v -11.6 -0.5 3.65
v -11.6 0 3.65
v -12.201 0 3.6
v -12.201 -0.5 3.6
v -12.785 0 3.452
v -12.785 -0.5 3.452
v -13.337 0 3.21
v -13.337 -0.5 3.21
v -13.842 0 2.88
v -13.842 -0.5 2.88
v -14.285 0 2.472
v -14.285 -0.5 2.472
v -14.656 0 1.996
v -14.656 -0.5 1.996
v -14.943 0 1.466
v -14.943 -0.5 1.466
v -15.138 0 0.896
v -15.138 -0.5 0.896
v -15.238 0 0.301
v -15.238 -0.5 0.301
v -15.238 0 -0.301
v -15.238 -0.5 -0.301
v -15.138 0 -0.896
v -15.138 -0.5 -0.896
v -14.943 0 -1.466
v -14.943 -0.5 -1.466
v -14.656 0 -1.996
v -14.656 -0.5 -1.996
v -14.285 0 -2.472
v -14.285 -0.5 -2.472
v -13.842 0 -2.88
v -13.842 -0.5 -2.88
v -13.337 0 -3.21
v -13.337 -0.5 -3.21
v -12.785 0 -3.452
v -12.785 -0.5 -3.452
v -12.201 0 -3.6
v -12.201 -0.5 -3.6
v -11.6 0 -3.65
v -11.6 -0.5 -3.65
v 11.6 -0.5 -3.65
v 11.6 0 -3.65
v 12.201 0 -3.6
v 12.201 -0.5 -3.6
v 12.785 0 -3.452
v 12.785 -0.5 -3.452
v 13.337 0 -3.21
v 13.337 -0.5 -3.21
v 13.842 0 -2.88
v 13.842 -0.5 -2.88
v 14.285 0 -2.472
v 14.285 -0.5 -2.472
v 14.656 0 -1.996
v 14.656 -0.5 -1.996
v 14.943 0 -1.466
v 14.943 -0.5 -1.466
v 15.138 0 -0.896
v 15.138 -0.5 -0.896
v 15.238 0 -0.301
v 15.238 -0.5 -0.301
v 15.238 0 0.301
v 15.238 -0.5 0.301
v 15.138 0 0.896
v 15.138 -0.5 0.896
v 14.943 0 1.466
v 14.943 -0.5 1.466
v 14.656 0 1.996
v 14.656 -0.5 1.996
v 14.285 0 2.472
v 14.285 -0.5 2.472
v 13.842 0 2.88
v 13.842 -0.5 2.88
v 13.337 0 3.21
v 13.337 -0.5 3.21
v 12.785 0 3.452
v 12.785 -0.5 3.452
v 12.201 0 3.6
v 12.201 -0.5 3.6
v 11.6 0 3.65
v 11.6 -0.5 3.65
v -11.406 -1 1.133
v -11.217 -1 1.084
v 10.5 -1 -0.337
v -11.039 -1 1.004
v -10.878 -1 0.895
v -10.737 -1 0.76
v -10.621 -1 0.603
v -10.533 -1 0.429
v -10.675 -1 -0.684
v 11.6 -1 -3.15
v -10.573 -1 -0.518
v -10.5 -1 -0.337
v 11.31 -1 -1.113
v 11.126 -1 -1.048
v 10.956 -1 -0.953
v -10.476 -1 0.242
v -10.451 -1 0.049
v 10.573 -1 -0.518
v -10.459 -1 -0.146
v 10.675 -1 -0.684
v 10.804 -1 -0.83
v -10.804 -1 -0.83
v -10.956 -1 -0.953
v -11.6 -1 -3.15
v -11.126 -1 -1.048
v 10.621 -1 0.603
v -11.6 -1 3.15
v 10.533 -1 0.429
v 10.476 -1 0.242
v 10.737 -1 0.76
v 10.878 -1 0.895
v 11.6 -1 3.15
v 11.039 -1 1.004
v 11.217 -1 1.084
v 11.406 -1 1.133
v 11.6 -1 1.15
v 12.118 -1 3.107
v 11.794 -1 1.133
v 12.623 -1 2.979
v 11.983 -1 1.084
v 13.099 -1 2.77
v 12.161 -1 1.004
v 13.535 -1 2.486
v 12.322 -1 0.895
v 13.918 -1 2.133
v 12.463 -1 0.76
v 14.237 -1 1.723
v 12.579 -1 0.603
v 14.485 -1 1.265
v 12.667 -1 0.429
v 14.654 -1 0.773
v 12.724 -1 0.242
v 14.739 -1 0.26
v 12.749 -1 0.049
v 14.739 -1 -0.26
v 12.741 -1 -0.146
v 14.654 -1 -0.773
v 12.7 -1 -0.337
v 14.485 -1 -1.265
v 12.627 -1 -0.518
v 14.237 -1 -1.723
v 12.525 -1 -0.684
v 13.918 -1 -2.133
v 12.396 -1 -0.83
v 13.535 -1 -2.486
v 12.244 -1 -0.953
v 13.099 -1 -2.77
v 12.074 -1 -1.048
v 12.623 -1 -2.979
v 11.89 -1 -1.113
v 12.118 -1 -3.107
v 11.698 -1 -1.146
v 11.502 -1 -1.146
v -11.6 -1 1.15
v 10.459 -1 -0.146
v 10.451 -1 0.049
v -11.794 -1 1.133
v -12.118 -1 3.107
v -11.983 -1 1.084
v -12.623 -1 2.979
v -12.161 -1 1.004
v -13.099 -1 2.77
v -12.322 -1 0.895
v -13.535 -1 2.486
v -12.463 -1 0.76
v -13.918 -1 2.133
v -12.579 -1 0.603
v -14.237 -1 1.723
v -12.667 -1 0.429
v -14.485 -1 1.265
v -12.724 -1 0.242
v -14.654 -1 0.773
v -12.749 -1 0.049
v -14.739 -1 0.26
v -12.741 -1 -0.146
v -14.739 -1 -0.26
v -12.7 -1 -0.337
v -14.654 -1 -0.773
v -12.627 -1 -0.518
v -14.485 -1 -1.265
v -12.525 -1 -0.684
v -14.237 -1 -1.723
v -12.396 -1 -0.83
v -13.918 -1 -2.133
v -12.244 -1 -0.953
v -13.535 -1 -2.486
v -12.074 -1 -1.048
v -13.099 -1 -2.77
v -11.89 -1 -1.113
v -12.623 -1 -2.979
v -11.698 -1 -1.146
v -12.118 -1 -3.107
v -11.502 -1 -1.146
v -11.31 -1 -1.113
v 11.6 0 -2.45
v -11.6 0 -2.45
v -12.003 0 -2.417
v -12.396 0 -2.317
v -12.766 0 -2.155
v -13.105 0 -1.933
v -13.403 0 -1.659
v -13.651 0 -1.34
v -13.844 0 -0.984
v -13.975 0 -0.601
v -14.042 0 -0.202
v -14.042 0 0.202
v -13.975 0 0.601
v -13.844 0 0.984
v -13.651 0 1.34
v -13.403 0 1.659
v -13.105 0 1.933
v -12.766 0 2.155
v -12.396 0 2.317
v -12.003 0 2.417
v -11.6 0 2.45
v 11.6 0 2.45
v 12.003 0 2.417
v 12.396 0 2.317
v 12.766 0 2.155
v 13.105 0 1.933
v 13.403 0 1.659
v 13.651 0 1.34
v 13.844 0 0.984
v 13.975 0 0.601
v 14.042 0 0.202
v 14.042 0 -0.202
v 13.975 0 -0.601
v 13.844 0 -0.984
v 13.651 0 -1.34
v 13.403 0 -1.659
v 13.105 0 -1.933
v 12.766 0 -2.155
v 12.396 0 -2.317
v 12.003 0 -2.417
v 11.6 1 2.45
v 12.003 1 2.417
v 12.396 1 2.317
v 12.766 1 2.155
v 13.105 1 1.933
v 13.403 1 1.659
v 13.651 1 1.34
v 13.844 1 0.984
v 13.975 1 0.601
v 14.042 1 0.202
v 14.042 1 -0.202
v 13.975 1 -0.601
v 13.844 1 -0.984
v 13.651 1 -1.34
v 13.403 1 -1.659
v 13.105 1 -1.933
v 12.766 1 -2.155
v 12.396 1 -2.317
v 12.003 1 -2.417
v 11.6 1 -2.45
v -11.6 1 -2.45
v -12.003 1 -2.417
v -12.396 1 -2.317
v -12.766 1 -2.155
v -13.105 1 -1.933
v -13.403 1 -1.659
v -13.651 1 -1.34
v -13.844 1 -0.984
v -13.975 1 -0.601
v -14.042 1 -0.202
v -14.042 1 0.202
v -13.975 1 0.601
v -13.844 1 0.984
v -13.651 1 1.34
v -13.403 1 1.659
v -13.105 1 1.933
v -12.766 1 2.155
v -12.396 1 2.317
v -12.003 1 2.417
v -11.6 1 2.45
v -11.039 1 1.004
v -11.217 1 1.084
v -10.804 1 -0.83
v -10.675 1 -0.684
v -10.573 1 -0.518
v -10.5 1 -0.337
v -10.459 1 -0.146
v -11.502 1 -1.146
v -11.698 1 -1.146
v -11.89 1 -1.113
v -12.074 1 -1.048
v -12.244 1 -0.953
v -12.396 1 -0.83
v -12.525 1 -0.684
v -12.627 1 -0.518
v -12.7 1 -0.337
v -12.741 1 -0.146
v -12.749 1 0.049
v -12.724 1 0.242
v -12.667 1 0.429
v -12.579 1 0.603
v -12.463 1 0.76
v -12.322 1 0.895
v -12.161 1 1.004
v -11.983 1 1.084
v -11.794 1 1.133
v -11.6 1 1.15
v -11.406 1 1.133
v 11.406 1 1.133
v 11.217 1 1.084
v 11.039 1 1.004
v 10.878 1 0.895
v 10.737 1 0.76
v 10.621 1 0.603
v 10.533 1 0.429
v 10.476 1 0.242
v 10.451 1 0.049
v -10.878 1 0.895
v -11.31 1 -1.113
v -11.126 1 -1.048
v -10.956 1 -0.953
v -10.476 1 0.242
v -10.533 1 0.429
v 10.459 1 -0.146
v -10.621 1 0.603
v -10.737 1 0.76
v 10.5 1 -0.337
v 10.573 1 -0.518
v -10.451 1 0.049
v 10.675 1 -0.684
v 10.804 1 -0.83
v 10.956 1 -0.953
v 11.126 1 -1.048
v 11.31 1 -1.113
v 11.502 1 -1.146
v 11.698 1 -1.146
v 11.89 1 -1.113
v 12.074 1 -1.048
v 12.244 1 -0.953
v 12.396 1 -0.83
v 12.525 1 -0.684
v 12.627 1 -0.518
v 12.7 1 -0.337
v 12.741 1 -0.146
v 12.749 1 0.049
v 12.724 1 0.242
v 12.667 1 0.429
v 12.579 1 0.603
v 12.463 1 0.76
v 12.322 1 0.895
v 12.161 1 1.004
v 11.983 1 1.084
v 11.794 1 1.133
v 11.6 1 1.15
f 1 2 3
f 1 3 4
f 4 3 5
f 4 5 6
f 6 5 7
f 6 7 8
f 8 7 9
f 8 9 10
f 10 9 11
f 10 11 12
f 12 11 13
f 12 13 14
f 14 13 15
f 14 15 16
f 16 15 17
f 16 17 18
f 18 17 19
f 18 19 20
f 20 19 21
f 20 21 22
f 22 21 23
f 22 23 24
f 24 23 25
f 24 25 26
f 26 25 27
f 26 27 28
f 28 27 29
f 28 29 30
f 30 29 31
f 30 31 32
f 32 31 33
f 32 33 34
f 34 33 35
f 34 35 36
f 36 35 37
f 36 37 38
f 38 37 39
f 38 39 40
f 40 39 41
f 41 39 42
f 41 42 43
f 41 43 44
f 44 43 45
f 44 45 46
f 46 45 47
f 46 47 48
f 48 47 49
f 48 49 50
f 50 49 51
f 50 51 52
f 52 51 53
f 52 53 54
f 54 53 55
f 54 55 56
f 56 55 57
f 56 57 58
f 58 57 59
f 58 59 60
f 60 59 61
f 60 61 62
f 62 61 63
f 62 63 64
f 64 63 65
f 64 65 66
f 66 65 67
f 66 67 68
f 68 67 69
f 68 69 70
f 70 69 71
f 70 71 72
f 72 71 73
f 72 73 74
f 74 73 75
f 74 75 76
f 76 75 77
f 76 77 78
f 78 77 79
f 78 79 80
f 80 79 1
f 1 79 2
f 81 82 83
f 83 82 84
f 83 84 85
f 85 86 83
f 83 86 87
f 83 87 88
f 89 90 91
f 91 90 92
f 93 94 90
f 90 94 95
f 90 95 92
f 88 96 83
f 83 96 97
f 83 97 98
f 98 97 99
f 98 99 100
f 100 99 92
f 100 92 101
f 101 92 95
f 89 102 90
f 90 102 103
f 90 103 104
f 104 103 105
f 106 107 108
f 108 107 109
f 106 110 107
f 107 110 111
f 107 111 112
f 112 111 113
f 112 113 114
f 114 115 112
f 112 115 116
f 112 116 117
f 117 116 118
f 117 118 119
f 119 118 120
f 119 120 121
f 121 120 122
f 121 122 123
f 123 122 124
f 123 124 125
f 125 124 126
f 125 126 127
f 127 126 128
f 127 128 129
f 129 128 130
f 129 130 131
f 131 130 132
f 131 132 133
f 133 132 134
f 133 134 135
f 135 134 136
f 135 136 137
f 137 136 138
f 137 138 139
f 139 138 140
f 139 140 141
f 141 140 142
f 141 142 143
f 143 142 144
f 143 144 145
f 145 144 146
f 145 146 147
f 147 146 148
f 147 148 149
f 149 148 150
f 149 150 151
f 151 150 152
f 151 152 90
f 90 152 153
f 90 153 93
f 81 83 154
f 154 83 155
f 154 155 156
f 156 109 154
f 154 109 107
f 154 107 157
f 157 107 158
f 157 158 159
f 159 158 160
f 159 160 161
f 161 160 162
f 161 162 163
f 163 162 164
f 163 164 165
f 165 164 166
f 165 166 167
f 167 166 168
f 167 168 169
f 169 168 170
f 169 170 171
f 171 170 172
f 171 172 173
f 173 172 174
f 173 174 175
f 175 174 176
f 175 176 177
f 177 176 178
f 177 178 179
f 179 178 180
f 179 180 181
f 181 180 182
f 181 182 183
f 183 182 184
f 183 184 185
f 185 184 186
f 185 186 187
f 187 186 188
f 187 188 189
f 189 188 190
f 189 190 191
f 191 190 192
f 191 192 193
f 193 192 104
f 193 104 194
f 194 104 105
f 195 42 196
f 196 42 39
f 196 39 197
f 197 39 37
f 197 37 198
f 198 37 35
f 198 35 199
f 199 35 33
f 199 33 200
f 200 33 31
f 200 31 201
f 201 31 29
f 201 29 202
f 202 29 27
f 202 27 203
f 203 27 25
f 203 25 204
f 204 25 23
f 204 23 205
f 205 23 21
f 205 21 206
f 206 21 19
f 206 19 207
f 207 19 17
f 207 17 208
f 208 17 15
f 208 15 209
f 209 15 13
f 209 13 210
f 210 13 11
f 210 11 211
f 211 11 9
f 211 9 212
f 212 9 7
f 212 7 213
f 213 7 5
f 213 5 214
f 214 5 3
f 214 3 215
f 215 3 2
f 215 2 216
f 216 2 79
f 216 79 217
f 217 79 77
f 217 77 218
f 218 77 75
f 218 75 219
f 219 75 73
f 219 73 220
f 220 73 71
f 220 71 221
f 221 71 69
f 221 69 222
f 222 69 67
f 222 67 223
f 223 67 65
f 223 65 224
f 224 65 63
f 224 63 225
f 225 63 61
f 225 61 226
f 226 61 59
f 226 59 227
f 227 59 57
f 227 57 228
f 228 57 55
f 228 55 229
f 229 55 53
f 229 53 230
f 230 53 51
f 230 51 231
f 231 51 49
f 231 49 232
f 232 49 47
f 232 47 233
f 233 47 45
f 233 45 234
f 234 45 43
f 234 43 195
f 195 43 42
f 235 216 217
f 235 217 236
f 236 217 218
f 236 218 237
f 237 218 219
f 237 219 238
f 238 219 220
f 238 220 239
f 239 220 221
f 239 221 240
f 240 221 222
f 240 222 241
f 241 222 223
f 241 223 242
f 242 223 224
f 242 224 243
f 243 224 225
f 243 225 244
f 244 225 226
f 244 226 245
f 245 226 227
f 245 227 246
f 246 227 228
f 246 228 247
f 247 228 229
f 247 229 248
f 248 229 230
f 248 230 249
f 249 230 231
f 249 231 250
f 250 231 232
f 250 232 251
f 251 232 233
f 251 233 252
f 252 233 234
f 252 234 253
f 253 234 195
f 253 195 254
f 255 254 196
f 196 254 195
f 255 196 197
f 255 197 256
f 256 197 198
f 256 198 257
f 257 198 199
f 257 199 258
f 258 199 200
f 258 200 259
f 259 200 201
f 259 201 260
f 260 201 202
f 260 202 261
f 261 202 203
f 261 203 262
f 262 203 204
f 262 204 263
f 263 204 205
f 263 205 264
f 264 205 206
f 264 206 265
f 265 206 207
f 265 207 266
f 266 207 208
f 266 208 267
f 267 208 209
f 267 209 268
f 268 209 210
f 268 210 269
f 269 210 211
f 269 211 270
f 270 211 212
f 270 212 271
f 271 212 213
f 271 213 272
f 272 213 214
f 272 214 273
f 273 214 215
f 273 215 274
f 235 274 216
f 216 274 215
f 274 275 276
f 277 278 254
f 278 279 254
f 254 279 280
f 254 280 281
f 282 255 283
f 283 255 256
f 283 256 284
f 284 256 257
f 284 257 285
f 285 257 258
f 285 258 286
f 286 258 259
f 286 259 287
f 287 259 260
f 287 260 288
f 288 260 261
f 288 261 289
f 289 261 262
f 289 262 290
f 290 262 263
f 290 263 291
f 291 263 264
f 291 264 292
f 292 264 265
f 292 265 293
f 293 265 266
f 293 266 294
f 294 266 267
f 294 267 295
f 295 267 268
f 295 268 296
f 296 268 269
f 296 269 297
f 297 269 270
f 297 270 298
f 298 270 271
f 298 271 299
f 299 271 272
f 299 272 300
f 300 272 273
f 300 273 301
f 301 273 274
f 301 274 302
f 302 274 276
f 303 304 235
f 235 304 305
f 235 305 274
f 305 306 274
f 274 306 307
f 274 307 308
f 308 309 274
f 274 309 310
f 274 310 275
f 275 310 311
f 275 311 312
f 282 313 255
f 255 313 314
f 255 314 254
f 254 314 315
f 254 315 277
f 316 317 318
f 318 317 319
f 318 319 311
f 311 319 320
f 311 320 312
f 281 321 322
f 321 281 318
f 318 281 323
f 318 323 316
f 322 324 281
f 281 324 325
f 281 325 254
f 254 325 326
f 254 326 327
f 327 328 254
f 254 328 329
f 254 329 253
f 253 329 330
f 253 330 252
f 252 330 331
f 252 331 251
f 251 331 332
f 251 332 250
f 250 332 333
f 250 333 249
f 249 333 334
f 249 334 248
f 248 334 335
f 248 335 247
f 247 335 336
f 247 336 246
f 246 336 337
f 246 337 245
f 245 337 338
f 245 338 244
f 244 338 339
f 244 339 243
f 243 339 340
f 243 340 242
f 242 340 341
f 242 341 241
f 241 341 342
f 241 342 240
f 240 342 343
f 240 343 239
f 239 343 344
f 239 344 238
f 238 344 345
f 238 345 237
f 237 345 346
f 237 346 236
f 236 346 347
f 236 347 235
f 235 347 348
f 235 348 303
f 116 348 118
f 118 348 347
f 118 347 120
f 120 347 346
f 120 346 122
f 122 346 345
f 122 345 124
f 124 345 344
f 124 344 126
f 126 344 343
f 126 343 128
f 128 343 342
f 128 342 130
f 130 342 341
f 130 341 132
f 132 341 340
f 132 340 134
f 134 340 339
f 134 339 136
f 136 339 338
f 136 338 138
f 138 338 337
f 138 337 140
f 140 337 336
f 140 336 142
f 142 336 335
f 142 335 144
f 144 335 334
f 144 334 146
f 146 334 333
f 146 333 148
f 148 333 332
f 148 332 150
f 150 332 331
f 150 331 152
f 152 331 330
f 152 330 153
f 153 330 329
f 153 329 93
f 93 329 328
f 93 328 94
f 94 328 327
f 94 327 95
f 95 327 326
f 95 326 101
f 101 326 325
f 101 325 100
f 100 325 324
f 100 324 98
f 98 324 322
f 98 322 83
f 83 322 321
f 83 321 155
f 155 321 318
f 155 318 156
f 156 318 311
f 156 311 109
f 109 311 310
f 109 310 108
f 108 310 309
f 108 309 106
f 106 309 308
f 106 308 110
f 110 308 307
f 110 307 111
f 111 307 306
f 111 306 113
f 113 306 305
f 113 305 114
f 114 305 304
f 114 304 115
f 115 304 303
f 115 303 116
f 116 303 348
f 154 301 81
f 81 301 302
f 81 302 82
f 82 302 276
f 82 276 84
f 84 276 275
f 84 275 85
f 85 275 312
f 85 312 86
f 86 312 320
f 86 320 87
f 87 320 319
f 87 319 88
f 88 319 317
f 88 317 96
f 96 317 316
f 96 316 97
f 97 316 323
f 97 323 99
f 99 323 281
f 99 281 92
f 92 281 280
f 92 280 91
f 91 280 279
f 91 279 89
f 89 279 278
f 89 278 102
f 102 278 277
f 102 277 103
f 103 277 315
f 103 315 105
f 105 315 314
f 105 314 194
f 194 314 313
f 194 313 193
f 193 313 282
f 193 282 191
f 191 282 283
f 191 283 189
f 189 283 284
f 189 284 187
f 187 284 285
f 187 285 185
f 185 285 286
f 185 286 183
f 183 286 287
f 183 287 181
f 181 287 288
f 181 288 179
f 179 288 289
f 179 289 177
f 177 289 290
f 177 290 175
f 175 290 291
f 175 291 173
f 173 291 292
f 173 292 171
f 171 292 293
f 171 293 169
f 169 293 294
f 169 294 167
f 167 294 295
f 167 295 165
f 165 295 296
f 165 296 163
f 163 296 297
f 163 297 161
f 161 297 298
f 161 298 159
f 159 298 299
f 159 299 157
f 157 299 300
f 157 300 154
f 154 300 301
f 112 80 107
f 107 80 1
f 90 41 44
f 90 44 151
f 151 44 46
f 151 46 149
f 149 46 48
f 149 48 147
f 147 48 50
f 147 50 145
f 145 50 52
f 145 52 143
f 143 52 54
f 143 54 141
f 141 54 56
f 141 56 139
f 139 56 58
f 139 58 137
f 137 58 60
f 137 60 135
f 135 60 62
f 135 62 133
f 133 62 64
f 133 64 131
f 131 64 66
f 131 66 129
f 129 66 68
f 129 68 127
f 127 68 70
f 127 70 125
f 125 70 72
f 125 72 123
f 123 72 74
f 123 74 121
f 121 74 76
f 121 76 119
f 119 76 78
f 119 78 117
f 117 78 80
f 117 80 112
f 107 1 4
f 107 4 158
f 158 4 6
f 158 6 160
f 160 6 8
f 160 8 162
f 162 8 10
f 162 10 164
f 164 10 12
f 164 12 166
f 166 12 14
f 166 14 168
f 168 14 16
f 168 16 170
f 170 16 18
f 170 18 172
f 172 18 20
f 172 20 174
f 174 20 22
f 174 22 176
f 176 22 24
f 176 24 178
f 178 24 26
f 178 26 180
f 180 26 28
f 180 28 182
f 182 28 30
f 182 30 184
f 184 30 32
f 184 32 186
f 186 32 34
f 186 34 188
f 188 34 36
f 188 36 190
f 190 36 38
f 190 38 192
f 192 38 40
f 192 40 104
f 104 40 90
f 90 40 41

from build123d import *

# Parameters (mm, degrees)
BOSS_EXTRUDE1_DEPTH = 1
BOSS_EXTRUDE2_DEPTH = 1
SKETCH4_R           = 1.15
CUT_EXTRUDE1_DEPTH  = 16.807751263
CHAMFER1_SIZE       = 0.5


with BuildPart() as part:
    # Sketch2 → Boss-Extrude1 (new body)
    with BuildSketch(Plane(origin=(0, 0, 0), x_dir=(1, 0, 0), z_dir=(0, 1, 0))):
        with BuildLine():
            Line((11.6, 3.65), (-11.6, 3.65))
            ThreePointArc((-11.6, 3.65), (-15.25, 0), (-11.6, -3.65))
            Line((-11.6, -3.65), (11.6, -3.65))
            ThreePointArc((11.6, -3.65), (15.25, 0), (11.6, 3.65))
        make_face()
    extrude(amount=-BOSS_EXTRUDE1_DEPTH)

    # Sketch3 → Boss-Extrude2 (add)
    with BuildSketch(Plane(origin=(0, 0, 0), x_dir=(1, 0, 0), z_dir=(0, 1, 0))):
        with BuildLine():
            Line((-11.6, -2.45), (11.6, -2.45))
            ThreePointArc((11.6, -2.45), (14.05, 0), (11.6, 2.45))
            Line((11.6, 2.45), (-11.6, 2.45))
            ThreePointArc((-11.6, 2.45), (-14.05, 0), (-11.6, -2.45))
        make_face()
    extrude(amount=BOSS_EXTRUDE2_DEPTH)

    # Sketch4 → Cut-Extrude1 (cut, through all)
    with BuildSketch(Plane(origin=(0, 1, 0), x_dir=(1, 0, 0), z_dir=(0, 1, 0))):
        with Locations(Location((-11.6, 0, 0), (0, 0, 270))):
            Circle(SKETCH4_R)
        with Locations(Location((11.6, 0, 0), (0, 0, 270))):
            Circle(SKETCH4_R)
    extrude(amount=-CUT_EXTRUDE1_DEPTH, mode=Mode.SUBTRACT)

    # Chamfer1
    chamfer1_edges = [part.edges().sort_by_distance(p)[0] for p in [
        (15.25, -1, 0),
        (0, -1, -3.65),
        (-15.25, -1, 0),
        (0, -1, 3.65),
    ]]
    chamfer(chamfer1_edges, length=CHAMFER1_SIZE)


solid = part.part
